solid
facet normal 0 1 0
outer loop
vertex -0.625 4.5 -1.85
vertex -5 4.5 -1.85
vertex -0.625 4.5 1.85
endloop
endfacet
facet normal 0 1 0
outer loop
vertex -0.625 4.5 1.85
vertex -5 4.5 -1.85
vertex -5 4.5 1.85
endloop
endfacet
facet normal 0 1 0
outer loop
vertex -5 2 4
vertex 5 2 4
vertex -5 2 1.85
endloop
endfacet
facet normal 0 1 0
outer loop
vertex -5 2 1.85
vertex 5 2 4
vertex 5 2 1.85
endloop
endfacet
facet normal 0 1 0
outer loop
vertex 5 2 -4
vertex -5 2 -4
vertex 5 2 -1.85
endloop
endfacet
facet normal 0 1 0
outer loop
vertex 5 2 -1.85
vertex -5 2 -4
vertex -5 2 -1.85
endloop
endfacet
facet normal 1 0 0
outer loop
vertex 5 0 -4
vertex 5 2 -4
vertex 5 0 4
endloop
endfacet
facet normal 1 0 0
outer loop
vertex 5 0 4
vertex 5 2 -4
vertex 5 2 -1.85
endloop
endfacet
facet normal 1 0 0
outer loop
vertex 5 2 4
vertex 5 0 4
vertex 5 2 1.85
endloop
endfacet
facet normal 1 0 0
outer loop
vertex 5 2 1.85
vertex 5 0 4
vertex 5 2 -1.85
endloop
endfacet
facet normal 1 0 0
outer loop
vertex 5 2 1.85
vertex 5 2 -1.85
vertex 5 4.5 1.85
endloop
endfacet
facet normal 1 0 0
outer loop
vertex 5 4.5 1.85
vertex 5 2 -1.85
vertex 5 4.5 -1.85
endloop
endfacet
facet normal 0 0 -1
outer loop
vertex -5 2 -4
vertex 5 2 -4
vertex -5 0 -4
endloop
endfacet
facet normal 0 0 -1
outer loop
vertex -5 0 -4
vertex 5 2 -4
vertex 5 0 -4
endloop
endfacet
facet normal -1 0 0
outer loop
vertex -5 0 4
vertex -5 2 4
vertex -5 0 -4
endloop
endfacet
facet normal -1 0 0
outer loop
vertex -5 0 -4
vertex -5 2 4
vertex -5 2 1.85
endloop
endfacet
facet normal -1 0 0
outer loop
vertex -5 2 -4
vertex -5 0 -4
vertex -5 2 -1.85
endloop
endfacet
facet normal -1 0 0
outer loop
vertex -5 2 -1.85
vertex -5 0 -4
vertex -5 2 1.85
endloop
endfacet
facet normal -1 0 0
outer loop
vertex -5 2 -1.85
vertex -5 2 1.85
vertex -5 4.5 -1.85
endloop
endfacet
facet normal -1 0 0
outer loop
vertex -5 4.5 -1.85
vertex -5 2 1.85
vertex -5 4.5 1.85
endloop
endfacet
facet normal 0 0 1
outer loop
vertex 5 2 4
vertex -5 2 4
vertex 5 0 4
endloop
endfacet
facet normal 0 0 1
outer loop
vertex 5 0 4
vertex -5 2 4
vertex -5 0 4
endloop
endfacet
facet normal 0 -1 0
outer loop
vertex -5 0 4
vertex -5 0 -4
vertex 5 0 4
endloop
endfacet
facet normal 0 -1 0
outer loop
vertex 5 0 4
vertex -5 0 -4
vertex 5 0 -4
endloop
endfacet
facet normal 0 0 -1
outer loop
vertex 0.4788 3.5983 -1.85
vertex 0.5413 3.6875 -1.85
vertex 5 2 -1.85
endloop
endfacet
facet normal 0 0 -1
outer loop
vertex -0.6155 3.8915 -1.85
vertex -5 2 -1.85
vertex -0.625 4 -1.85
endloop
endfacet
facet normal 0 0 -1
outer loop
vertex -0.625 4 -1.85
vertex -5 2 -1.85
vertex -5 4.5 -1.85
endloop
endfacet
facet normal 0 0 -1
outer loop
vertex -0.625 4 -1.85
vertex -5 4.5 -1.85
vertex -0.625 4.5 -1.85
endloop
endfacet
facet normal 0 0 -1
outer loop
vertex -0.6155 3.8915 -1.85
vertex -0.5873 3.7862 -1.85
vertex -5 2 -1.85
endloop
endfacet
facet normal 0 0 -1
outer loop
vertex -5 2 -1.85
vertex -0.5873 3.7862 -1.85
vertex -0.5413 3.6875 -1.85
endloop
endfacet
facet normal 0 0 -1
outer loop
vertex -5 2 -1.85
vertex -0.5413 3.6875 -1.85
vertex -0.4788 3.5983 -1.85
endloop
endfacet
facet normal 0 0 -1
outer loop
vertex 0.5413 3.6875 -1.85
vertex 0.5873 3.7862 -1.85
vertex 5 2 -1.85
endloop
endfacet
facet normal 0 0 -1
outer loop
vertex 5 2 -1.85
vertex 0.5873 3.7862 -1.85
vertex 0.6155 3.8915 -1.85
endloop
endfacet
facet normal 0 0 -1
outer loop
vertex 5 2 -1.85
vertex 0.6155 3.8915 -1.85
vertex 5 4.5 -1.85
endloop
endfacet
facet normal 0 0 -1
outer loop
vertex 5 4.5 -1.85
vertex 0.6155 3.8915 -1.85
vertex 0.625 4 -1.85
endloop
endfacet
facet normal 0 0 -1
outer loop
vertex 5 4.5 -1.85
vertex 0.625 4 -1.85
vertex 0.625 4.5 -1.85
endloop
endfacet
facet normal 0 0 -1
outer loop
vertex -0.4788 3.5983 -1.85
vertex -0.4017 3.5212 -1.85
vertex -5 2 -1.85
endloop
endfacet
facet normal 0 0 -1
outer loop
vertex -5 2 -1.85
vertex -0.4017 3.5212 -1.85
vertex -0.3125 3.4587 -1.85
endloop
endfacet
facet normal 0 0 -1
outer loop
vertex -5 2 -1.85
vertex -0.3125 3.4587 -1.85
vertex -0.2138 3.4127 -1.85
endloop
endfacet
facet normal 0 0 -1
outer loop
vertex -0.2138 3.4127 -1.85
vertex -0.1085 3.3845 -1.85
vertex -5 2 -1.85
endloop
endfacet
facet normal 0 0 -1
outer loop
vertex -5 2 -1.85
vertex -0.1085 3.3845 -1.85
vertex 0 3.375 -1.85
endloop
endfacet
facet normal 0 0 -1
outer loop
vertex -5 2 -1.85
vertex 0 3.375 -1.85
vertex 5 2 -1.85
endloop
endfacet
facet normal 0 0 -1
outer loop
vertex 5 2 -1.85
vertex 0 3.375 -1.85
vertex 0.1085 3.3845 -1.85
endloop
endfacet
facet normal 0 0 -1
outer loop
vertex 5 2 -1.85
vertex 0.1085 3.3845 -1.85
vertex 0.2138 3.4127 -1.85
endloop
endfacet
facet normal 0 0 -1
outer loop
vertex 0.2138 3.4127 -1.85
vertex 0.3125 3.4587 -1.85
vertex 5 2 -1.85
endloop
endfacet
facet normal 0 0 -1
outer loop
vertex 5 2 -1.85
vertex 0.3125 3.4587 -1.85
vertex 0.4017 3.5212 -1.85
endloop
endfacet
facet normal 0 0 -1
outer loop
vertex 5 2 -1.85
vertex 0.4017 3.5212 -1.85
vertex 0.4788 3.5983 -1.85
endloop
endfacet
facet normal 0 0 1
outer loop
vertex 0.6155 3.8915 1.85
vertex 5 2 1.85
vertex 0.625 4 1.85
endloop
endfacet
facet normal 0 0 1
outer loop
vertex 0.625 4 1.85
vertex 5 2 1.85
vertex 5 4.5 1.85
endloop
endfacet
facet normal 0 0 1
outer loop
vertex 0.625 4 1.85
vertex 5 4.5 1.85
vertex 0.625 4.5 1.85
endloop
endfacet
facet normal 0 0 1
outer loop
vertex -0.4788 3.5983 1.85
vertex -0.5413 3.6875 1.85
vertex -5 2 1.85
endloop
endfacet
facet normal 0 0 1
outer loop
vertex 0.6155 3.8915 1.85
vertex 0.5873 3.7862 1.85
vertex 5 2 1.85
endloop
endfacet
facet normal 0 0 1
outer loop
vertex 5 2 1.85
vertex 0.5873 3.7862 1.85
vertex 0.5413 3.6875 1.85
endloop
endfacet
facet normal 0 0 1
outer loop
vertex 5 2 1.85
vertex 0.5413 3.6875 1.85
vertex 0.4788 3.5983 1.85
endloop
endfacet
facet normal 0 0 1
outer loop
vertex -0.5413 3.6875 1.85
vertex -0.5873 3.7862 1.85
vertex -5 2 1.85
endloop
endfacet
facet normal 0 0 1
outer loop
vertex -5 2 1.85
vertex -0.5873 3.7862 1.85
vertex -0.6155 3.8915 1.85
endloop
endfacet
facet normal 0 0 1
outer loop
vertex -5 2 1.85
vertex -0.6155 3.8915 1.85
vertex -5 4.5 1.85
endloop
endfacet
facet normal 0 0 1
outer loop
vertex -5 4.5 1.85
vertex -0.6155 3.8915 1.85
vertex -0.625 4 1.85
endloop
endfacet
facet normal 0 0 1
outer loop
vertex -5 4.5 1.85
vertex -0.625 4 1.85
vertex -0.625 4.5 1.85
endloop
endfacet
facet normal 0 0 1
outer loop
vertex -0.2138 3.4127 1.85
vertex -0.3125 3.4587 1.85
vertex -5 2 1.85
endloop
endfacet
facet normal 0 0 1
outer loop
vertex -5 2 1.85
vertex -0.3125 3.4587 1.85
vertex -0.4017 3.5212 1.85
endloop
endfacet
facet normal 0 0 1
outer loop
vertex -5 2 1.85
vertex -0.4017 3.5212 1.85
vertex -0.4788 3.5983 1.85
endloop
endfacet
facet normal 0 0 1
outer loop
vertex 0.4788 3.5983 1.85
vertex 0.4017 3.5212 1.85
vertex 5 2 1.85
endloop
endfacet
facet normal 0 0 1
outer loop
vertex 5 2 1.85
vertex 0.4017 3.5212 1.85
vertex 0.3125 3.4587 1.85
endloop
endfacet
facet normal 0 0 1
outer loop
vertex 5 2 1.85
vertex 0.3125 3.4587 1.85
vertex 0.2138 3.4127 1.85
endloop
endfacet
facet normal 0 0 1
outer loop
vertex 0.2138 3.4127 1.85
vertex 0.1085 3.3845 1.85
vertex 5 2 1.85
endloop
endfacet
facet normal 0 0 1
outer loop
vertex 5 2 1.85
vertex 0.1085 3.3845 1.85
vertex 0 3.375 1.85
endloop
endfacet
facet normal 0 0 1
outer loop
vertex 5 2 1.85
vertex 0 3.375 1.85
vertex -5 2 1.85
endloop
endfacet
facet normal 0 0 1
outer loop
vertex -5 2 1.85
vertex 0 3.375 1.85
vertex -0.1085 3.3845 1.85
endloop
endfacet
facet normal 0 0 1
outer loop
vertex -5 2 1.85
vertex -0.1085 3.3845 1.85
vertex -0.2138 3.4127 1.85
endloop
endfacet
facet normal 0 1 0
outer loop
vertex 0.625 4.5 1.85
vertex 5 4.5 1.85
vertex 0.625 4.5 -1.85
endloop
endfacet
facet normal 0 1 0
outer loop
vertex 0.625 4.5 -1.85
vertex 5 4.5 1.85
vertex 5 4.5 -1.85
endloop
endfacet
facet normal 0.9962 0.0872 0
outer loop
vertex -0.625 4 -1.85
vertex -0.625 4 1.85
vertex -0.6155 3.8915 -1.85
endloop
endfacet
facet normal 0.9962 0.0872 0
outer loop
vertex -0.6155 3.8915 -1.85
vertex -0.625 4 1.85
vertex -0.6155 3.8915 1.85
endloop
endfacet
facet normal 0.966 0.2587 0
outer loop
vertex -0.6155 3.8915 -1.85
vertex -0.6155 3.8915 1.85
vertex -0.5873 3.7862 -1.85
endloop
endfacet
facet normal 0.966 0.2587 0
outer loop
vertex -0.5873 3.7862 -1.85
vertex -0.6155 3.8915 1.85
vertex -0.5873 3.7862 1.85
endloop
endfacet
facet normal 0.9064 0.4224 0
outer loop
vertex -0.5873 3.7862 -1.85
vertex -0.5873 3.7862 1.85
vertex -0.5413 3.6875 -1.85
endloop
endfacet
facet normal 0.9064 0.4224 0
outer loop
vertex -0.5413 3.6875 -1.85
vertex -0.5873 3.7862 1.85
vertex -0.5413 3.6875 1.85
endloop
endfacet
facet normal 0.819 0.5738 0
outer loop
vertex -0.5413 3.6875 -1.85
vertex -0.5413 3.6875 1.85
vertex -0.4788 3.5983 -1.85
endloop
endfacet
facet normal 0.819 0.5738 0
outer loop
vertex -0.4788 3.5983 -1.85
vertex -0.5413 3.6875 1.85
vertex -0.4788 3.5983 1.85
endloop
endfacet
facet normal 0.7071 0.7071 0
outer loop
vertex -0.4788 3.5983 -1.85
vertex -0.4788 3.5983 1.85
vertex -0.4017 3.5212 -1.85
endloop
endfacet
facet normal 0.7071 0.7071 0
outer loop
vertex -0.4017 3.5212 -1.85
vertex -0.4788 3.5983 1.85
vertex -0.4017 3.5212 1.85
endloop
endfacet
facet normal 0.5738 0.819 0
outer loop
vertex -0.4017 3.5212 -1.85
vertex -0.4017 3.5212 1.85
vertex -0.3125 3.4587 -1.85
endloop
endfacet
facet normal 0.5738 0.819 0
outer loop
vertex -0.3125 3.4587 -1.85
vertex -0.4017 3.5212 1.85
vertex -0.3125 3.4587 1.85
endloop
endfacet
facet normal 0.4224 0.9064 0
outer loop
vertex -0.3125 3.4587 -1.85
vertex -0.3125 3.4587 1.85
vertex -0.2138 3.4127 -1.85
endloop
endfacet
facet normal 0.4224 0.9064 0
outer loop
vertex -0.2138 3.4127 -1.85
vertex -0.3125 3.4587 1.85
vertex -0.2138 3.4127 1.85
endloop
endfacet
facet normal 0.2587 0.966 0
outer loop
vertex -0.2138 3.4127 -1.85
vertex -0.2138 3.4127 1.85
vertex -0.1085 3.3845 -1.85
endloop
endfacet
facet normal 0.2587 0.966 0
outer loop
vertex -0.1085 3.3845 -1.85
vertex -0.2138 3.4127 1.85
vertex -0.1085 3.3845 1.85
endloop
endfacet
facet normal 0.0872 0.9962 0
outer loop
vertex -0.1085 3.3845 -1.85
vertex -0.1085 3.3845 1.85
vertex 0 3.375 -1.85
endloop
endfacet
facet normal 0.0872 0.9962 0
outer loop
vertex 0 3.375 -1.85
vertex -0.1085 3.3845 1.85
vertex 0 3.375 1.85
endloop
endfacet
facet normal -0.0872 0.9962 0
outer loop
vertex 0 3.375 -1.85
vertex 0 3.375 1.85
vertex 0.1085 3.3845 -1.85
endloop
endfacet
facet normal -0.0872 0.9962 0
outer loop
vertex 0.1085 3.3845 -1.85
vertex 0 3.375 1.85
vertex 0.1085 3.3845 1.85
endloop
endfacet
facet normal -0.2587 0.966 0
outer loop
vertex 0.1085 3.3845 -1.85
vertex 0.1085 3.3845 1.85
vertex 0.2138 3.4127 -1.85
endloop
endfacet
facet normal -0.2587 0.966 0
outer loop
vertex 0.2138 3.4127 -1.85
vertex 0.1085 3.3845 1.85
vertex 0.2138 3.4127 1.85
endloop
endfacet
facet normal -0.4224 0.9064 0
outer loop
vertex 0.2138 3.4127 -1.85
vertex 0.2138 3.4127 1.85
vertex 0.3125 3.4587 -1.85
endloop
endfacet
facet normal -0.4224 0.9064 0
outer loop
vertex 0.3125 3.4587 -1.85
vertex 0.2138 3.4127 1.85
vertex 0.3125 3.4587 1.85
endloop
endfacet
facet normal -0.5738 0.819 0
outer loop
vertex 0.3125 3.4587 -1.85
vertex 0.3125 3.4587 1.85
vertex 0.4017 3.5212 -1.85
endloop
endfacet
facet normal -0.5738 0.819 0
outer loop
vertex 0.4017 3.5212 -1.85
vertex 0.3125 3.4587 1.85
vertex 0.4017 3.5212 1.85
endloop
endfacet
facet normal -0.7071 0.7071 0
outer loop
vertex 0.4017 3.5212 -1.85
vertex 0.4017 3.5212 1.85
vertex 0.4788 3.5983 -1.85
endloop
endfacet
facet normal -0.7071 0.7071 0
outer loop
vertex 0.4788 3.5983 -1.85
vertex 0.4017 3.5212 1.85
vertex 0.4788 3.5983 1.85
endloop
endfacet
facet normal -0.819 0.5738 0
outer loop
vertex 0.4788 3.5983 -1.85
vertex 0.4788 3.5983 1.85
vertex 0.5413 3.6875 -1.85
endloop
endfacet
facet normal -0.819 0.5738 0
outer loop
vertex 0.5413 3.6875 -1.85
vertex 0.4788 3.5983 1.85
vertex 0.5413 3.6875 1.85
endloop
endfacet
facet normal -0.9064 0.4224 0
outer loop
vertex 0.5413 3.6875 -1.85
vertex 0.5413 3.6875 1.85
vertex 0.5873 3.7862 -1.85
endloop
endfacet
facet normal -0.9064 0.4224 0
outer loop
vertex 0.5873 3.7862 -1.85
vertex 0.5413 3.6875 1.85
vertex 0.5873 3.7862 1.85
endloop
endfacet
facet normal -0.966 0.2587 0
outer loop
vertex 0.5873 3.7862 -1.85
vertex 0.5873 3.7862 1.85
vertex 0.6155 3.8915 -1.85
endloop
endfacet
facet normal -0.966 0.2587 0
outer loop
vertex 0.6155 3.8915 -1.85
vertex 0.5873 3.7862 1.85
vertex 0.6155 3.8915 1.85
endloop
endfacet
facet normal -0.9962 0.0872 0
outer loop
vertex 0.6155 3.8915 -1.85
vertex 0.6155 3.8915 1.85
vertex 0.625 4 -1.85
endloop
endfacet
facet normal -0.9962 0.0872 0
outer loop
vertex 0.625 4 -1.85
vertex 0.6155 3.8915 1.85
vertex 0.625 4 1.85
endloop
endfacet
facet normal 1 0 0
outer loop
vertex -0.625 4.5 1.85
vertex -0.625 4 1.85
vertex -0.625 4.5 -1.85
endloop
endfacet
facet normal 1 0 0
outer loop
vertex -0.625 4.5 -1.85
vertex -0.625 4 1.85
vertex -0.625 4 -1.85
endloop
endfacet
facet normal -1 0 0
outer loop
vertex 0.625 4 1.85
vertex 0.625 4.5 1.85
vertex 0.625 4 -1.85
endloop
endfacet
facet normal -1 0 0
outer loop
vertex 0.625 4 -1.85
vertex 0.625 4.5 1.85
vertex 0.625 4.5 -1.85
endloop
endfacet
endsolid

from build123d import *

# Parameters (mm, degrees)
SKETCH1_W           = 10
SKETCH1_H           = 8
BOSS_EXTRUDE1_DEPTH = 2
SKETCH2_W           = 10
SKETCH2_H           = 3.7
BOSS_EXTRUDE2_DEPTH = 2.5
CUT_EXTRUDE1_REACH  = 10.915


with BuildPart() as part:
    # Sketch1 → Boss-Extrude1 (new body)
    with BuildSketch(Plane(origin=(0, 0, 0), x_dir=(1, 0, 0), z_dir=(0, 1, 0))):
        Rectangle(SKETCH1_W, SKETCH1_H)
    extrude(amount=BOSS_EXTRUDE1_DEPTH)

    # Sketch2 → Boss-Extrude2 (add)
    with BuildSketch(Plane(origin=(0, 2, 0), x_dir=(1, 0, 0), z_dir=(0, 1, 0))):
        Rectangle(SKETCH2_W, SKETCH2_H)
    extrude(amount=BOSS_EXTRUDE2_DEPTH)

    # Sketch3 → Cut-Extrude1 (cut, up to next)
    with BuildSketch(Plane.XY.offset(1.85), mode=Mode.PRIVATE) as cut_extrude1_sk1:
        with BuildLine():
            Line((-0.625, 4), (-0.625, 4.5))
            Line((-0.625, 4.5), (0.625, 4.5))
            Line((0.625, 4.5), (0.625, 4))
            ThreePointArc((0.625, 4), (0, 3.375), (-0.625, 4))
        make_face()
    cut_extrude1_tool1 = extrude(cut_extrude1_sk1.sketch, amount=-CUT_EXTRUDE1_REACH, mode=Mode.PRIVATE) & part.part
    add(cut_extrude1_tool1.solids().sort_by_distance((0, 3.994744, 1.85))[0], mode=Mode.SUBTRACT)


solid = part.part
